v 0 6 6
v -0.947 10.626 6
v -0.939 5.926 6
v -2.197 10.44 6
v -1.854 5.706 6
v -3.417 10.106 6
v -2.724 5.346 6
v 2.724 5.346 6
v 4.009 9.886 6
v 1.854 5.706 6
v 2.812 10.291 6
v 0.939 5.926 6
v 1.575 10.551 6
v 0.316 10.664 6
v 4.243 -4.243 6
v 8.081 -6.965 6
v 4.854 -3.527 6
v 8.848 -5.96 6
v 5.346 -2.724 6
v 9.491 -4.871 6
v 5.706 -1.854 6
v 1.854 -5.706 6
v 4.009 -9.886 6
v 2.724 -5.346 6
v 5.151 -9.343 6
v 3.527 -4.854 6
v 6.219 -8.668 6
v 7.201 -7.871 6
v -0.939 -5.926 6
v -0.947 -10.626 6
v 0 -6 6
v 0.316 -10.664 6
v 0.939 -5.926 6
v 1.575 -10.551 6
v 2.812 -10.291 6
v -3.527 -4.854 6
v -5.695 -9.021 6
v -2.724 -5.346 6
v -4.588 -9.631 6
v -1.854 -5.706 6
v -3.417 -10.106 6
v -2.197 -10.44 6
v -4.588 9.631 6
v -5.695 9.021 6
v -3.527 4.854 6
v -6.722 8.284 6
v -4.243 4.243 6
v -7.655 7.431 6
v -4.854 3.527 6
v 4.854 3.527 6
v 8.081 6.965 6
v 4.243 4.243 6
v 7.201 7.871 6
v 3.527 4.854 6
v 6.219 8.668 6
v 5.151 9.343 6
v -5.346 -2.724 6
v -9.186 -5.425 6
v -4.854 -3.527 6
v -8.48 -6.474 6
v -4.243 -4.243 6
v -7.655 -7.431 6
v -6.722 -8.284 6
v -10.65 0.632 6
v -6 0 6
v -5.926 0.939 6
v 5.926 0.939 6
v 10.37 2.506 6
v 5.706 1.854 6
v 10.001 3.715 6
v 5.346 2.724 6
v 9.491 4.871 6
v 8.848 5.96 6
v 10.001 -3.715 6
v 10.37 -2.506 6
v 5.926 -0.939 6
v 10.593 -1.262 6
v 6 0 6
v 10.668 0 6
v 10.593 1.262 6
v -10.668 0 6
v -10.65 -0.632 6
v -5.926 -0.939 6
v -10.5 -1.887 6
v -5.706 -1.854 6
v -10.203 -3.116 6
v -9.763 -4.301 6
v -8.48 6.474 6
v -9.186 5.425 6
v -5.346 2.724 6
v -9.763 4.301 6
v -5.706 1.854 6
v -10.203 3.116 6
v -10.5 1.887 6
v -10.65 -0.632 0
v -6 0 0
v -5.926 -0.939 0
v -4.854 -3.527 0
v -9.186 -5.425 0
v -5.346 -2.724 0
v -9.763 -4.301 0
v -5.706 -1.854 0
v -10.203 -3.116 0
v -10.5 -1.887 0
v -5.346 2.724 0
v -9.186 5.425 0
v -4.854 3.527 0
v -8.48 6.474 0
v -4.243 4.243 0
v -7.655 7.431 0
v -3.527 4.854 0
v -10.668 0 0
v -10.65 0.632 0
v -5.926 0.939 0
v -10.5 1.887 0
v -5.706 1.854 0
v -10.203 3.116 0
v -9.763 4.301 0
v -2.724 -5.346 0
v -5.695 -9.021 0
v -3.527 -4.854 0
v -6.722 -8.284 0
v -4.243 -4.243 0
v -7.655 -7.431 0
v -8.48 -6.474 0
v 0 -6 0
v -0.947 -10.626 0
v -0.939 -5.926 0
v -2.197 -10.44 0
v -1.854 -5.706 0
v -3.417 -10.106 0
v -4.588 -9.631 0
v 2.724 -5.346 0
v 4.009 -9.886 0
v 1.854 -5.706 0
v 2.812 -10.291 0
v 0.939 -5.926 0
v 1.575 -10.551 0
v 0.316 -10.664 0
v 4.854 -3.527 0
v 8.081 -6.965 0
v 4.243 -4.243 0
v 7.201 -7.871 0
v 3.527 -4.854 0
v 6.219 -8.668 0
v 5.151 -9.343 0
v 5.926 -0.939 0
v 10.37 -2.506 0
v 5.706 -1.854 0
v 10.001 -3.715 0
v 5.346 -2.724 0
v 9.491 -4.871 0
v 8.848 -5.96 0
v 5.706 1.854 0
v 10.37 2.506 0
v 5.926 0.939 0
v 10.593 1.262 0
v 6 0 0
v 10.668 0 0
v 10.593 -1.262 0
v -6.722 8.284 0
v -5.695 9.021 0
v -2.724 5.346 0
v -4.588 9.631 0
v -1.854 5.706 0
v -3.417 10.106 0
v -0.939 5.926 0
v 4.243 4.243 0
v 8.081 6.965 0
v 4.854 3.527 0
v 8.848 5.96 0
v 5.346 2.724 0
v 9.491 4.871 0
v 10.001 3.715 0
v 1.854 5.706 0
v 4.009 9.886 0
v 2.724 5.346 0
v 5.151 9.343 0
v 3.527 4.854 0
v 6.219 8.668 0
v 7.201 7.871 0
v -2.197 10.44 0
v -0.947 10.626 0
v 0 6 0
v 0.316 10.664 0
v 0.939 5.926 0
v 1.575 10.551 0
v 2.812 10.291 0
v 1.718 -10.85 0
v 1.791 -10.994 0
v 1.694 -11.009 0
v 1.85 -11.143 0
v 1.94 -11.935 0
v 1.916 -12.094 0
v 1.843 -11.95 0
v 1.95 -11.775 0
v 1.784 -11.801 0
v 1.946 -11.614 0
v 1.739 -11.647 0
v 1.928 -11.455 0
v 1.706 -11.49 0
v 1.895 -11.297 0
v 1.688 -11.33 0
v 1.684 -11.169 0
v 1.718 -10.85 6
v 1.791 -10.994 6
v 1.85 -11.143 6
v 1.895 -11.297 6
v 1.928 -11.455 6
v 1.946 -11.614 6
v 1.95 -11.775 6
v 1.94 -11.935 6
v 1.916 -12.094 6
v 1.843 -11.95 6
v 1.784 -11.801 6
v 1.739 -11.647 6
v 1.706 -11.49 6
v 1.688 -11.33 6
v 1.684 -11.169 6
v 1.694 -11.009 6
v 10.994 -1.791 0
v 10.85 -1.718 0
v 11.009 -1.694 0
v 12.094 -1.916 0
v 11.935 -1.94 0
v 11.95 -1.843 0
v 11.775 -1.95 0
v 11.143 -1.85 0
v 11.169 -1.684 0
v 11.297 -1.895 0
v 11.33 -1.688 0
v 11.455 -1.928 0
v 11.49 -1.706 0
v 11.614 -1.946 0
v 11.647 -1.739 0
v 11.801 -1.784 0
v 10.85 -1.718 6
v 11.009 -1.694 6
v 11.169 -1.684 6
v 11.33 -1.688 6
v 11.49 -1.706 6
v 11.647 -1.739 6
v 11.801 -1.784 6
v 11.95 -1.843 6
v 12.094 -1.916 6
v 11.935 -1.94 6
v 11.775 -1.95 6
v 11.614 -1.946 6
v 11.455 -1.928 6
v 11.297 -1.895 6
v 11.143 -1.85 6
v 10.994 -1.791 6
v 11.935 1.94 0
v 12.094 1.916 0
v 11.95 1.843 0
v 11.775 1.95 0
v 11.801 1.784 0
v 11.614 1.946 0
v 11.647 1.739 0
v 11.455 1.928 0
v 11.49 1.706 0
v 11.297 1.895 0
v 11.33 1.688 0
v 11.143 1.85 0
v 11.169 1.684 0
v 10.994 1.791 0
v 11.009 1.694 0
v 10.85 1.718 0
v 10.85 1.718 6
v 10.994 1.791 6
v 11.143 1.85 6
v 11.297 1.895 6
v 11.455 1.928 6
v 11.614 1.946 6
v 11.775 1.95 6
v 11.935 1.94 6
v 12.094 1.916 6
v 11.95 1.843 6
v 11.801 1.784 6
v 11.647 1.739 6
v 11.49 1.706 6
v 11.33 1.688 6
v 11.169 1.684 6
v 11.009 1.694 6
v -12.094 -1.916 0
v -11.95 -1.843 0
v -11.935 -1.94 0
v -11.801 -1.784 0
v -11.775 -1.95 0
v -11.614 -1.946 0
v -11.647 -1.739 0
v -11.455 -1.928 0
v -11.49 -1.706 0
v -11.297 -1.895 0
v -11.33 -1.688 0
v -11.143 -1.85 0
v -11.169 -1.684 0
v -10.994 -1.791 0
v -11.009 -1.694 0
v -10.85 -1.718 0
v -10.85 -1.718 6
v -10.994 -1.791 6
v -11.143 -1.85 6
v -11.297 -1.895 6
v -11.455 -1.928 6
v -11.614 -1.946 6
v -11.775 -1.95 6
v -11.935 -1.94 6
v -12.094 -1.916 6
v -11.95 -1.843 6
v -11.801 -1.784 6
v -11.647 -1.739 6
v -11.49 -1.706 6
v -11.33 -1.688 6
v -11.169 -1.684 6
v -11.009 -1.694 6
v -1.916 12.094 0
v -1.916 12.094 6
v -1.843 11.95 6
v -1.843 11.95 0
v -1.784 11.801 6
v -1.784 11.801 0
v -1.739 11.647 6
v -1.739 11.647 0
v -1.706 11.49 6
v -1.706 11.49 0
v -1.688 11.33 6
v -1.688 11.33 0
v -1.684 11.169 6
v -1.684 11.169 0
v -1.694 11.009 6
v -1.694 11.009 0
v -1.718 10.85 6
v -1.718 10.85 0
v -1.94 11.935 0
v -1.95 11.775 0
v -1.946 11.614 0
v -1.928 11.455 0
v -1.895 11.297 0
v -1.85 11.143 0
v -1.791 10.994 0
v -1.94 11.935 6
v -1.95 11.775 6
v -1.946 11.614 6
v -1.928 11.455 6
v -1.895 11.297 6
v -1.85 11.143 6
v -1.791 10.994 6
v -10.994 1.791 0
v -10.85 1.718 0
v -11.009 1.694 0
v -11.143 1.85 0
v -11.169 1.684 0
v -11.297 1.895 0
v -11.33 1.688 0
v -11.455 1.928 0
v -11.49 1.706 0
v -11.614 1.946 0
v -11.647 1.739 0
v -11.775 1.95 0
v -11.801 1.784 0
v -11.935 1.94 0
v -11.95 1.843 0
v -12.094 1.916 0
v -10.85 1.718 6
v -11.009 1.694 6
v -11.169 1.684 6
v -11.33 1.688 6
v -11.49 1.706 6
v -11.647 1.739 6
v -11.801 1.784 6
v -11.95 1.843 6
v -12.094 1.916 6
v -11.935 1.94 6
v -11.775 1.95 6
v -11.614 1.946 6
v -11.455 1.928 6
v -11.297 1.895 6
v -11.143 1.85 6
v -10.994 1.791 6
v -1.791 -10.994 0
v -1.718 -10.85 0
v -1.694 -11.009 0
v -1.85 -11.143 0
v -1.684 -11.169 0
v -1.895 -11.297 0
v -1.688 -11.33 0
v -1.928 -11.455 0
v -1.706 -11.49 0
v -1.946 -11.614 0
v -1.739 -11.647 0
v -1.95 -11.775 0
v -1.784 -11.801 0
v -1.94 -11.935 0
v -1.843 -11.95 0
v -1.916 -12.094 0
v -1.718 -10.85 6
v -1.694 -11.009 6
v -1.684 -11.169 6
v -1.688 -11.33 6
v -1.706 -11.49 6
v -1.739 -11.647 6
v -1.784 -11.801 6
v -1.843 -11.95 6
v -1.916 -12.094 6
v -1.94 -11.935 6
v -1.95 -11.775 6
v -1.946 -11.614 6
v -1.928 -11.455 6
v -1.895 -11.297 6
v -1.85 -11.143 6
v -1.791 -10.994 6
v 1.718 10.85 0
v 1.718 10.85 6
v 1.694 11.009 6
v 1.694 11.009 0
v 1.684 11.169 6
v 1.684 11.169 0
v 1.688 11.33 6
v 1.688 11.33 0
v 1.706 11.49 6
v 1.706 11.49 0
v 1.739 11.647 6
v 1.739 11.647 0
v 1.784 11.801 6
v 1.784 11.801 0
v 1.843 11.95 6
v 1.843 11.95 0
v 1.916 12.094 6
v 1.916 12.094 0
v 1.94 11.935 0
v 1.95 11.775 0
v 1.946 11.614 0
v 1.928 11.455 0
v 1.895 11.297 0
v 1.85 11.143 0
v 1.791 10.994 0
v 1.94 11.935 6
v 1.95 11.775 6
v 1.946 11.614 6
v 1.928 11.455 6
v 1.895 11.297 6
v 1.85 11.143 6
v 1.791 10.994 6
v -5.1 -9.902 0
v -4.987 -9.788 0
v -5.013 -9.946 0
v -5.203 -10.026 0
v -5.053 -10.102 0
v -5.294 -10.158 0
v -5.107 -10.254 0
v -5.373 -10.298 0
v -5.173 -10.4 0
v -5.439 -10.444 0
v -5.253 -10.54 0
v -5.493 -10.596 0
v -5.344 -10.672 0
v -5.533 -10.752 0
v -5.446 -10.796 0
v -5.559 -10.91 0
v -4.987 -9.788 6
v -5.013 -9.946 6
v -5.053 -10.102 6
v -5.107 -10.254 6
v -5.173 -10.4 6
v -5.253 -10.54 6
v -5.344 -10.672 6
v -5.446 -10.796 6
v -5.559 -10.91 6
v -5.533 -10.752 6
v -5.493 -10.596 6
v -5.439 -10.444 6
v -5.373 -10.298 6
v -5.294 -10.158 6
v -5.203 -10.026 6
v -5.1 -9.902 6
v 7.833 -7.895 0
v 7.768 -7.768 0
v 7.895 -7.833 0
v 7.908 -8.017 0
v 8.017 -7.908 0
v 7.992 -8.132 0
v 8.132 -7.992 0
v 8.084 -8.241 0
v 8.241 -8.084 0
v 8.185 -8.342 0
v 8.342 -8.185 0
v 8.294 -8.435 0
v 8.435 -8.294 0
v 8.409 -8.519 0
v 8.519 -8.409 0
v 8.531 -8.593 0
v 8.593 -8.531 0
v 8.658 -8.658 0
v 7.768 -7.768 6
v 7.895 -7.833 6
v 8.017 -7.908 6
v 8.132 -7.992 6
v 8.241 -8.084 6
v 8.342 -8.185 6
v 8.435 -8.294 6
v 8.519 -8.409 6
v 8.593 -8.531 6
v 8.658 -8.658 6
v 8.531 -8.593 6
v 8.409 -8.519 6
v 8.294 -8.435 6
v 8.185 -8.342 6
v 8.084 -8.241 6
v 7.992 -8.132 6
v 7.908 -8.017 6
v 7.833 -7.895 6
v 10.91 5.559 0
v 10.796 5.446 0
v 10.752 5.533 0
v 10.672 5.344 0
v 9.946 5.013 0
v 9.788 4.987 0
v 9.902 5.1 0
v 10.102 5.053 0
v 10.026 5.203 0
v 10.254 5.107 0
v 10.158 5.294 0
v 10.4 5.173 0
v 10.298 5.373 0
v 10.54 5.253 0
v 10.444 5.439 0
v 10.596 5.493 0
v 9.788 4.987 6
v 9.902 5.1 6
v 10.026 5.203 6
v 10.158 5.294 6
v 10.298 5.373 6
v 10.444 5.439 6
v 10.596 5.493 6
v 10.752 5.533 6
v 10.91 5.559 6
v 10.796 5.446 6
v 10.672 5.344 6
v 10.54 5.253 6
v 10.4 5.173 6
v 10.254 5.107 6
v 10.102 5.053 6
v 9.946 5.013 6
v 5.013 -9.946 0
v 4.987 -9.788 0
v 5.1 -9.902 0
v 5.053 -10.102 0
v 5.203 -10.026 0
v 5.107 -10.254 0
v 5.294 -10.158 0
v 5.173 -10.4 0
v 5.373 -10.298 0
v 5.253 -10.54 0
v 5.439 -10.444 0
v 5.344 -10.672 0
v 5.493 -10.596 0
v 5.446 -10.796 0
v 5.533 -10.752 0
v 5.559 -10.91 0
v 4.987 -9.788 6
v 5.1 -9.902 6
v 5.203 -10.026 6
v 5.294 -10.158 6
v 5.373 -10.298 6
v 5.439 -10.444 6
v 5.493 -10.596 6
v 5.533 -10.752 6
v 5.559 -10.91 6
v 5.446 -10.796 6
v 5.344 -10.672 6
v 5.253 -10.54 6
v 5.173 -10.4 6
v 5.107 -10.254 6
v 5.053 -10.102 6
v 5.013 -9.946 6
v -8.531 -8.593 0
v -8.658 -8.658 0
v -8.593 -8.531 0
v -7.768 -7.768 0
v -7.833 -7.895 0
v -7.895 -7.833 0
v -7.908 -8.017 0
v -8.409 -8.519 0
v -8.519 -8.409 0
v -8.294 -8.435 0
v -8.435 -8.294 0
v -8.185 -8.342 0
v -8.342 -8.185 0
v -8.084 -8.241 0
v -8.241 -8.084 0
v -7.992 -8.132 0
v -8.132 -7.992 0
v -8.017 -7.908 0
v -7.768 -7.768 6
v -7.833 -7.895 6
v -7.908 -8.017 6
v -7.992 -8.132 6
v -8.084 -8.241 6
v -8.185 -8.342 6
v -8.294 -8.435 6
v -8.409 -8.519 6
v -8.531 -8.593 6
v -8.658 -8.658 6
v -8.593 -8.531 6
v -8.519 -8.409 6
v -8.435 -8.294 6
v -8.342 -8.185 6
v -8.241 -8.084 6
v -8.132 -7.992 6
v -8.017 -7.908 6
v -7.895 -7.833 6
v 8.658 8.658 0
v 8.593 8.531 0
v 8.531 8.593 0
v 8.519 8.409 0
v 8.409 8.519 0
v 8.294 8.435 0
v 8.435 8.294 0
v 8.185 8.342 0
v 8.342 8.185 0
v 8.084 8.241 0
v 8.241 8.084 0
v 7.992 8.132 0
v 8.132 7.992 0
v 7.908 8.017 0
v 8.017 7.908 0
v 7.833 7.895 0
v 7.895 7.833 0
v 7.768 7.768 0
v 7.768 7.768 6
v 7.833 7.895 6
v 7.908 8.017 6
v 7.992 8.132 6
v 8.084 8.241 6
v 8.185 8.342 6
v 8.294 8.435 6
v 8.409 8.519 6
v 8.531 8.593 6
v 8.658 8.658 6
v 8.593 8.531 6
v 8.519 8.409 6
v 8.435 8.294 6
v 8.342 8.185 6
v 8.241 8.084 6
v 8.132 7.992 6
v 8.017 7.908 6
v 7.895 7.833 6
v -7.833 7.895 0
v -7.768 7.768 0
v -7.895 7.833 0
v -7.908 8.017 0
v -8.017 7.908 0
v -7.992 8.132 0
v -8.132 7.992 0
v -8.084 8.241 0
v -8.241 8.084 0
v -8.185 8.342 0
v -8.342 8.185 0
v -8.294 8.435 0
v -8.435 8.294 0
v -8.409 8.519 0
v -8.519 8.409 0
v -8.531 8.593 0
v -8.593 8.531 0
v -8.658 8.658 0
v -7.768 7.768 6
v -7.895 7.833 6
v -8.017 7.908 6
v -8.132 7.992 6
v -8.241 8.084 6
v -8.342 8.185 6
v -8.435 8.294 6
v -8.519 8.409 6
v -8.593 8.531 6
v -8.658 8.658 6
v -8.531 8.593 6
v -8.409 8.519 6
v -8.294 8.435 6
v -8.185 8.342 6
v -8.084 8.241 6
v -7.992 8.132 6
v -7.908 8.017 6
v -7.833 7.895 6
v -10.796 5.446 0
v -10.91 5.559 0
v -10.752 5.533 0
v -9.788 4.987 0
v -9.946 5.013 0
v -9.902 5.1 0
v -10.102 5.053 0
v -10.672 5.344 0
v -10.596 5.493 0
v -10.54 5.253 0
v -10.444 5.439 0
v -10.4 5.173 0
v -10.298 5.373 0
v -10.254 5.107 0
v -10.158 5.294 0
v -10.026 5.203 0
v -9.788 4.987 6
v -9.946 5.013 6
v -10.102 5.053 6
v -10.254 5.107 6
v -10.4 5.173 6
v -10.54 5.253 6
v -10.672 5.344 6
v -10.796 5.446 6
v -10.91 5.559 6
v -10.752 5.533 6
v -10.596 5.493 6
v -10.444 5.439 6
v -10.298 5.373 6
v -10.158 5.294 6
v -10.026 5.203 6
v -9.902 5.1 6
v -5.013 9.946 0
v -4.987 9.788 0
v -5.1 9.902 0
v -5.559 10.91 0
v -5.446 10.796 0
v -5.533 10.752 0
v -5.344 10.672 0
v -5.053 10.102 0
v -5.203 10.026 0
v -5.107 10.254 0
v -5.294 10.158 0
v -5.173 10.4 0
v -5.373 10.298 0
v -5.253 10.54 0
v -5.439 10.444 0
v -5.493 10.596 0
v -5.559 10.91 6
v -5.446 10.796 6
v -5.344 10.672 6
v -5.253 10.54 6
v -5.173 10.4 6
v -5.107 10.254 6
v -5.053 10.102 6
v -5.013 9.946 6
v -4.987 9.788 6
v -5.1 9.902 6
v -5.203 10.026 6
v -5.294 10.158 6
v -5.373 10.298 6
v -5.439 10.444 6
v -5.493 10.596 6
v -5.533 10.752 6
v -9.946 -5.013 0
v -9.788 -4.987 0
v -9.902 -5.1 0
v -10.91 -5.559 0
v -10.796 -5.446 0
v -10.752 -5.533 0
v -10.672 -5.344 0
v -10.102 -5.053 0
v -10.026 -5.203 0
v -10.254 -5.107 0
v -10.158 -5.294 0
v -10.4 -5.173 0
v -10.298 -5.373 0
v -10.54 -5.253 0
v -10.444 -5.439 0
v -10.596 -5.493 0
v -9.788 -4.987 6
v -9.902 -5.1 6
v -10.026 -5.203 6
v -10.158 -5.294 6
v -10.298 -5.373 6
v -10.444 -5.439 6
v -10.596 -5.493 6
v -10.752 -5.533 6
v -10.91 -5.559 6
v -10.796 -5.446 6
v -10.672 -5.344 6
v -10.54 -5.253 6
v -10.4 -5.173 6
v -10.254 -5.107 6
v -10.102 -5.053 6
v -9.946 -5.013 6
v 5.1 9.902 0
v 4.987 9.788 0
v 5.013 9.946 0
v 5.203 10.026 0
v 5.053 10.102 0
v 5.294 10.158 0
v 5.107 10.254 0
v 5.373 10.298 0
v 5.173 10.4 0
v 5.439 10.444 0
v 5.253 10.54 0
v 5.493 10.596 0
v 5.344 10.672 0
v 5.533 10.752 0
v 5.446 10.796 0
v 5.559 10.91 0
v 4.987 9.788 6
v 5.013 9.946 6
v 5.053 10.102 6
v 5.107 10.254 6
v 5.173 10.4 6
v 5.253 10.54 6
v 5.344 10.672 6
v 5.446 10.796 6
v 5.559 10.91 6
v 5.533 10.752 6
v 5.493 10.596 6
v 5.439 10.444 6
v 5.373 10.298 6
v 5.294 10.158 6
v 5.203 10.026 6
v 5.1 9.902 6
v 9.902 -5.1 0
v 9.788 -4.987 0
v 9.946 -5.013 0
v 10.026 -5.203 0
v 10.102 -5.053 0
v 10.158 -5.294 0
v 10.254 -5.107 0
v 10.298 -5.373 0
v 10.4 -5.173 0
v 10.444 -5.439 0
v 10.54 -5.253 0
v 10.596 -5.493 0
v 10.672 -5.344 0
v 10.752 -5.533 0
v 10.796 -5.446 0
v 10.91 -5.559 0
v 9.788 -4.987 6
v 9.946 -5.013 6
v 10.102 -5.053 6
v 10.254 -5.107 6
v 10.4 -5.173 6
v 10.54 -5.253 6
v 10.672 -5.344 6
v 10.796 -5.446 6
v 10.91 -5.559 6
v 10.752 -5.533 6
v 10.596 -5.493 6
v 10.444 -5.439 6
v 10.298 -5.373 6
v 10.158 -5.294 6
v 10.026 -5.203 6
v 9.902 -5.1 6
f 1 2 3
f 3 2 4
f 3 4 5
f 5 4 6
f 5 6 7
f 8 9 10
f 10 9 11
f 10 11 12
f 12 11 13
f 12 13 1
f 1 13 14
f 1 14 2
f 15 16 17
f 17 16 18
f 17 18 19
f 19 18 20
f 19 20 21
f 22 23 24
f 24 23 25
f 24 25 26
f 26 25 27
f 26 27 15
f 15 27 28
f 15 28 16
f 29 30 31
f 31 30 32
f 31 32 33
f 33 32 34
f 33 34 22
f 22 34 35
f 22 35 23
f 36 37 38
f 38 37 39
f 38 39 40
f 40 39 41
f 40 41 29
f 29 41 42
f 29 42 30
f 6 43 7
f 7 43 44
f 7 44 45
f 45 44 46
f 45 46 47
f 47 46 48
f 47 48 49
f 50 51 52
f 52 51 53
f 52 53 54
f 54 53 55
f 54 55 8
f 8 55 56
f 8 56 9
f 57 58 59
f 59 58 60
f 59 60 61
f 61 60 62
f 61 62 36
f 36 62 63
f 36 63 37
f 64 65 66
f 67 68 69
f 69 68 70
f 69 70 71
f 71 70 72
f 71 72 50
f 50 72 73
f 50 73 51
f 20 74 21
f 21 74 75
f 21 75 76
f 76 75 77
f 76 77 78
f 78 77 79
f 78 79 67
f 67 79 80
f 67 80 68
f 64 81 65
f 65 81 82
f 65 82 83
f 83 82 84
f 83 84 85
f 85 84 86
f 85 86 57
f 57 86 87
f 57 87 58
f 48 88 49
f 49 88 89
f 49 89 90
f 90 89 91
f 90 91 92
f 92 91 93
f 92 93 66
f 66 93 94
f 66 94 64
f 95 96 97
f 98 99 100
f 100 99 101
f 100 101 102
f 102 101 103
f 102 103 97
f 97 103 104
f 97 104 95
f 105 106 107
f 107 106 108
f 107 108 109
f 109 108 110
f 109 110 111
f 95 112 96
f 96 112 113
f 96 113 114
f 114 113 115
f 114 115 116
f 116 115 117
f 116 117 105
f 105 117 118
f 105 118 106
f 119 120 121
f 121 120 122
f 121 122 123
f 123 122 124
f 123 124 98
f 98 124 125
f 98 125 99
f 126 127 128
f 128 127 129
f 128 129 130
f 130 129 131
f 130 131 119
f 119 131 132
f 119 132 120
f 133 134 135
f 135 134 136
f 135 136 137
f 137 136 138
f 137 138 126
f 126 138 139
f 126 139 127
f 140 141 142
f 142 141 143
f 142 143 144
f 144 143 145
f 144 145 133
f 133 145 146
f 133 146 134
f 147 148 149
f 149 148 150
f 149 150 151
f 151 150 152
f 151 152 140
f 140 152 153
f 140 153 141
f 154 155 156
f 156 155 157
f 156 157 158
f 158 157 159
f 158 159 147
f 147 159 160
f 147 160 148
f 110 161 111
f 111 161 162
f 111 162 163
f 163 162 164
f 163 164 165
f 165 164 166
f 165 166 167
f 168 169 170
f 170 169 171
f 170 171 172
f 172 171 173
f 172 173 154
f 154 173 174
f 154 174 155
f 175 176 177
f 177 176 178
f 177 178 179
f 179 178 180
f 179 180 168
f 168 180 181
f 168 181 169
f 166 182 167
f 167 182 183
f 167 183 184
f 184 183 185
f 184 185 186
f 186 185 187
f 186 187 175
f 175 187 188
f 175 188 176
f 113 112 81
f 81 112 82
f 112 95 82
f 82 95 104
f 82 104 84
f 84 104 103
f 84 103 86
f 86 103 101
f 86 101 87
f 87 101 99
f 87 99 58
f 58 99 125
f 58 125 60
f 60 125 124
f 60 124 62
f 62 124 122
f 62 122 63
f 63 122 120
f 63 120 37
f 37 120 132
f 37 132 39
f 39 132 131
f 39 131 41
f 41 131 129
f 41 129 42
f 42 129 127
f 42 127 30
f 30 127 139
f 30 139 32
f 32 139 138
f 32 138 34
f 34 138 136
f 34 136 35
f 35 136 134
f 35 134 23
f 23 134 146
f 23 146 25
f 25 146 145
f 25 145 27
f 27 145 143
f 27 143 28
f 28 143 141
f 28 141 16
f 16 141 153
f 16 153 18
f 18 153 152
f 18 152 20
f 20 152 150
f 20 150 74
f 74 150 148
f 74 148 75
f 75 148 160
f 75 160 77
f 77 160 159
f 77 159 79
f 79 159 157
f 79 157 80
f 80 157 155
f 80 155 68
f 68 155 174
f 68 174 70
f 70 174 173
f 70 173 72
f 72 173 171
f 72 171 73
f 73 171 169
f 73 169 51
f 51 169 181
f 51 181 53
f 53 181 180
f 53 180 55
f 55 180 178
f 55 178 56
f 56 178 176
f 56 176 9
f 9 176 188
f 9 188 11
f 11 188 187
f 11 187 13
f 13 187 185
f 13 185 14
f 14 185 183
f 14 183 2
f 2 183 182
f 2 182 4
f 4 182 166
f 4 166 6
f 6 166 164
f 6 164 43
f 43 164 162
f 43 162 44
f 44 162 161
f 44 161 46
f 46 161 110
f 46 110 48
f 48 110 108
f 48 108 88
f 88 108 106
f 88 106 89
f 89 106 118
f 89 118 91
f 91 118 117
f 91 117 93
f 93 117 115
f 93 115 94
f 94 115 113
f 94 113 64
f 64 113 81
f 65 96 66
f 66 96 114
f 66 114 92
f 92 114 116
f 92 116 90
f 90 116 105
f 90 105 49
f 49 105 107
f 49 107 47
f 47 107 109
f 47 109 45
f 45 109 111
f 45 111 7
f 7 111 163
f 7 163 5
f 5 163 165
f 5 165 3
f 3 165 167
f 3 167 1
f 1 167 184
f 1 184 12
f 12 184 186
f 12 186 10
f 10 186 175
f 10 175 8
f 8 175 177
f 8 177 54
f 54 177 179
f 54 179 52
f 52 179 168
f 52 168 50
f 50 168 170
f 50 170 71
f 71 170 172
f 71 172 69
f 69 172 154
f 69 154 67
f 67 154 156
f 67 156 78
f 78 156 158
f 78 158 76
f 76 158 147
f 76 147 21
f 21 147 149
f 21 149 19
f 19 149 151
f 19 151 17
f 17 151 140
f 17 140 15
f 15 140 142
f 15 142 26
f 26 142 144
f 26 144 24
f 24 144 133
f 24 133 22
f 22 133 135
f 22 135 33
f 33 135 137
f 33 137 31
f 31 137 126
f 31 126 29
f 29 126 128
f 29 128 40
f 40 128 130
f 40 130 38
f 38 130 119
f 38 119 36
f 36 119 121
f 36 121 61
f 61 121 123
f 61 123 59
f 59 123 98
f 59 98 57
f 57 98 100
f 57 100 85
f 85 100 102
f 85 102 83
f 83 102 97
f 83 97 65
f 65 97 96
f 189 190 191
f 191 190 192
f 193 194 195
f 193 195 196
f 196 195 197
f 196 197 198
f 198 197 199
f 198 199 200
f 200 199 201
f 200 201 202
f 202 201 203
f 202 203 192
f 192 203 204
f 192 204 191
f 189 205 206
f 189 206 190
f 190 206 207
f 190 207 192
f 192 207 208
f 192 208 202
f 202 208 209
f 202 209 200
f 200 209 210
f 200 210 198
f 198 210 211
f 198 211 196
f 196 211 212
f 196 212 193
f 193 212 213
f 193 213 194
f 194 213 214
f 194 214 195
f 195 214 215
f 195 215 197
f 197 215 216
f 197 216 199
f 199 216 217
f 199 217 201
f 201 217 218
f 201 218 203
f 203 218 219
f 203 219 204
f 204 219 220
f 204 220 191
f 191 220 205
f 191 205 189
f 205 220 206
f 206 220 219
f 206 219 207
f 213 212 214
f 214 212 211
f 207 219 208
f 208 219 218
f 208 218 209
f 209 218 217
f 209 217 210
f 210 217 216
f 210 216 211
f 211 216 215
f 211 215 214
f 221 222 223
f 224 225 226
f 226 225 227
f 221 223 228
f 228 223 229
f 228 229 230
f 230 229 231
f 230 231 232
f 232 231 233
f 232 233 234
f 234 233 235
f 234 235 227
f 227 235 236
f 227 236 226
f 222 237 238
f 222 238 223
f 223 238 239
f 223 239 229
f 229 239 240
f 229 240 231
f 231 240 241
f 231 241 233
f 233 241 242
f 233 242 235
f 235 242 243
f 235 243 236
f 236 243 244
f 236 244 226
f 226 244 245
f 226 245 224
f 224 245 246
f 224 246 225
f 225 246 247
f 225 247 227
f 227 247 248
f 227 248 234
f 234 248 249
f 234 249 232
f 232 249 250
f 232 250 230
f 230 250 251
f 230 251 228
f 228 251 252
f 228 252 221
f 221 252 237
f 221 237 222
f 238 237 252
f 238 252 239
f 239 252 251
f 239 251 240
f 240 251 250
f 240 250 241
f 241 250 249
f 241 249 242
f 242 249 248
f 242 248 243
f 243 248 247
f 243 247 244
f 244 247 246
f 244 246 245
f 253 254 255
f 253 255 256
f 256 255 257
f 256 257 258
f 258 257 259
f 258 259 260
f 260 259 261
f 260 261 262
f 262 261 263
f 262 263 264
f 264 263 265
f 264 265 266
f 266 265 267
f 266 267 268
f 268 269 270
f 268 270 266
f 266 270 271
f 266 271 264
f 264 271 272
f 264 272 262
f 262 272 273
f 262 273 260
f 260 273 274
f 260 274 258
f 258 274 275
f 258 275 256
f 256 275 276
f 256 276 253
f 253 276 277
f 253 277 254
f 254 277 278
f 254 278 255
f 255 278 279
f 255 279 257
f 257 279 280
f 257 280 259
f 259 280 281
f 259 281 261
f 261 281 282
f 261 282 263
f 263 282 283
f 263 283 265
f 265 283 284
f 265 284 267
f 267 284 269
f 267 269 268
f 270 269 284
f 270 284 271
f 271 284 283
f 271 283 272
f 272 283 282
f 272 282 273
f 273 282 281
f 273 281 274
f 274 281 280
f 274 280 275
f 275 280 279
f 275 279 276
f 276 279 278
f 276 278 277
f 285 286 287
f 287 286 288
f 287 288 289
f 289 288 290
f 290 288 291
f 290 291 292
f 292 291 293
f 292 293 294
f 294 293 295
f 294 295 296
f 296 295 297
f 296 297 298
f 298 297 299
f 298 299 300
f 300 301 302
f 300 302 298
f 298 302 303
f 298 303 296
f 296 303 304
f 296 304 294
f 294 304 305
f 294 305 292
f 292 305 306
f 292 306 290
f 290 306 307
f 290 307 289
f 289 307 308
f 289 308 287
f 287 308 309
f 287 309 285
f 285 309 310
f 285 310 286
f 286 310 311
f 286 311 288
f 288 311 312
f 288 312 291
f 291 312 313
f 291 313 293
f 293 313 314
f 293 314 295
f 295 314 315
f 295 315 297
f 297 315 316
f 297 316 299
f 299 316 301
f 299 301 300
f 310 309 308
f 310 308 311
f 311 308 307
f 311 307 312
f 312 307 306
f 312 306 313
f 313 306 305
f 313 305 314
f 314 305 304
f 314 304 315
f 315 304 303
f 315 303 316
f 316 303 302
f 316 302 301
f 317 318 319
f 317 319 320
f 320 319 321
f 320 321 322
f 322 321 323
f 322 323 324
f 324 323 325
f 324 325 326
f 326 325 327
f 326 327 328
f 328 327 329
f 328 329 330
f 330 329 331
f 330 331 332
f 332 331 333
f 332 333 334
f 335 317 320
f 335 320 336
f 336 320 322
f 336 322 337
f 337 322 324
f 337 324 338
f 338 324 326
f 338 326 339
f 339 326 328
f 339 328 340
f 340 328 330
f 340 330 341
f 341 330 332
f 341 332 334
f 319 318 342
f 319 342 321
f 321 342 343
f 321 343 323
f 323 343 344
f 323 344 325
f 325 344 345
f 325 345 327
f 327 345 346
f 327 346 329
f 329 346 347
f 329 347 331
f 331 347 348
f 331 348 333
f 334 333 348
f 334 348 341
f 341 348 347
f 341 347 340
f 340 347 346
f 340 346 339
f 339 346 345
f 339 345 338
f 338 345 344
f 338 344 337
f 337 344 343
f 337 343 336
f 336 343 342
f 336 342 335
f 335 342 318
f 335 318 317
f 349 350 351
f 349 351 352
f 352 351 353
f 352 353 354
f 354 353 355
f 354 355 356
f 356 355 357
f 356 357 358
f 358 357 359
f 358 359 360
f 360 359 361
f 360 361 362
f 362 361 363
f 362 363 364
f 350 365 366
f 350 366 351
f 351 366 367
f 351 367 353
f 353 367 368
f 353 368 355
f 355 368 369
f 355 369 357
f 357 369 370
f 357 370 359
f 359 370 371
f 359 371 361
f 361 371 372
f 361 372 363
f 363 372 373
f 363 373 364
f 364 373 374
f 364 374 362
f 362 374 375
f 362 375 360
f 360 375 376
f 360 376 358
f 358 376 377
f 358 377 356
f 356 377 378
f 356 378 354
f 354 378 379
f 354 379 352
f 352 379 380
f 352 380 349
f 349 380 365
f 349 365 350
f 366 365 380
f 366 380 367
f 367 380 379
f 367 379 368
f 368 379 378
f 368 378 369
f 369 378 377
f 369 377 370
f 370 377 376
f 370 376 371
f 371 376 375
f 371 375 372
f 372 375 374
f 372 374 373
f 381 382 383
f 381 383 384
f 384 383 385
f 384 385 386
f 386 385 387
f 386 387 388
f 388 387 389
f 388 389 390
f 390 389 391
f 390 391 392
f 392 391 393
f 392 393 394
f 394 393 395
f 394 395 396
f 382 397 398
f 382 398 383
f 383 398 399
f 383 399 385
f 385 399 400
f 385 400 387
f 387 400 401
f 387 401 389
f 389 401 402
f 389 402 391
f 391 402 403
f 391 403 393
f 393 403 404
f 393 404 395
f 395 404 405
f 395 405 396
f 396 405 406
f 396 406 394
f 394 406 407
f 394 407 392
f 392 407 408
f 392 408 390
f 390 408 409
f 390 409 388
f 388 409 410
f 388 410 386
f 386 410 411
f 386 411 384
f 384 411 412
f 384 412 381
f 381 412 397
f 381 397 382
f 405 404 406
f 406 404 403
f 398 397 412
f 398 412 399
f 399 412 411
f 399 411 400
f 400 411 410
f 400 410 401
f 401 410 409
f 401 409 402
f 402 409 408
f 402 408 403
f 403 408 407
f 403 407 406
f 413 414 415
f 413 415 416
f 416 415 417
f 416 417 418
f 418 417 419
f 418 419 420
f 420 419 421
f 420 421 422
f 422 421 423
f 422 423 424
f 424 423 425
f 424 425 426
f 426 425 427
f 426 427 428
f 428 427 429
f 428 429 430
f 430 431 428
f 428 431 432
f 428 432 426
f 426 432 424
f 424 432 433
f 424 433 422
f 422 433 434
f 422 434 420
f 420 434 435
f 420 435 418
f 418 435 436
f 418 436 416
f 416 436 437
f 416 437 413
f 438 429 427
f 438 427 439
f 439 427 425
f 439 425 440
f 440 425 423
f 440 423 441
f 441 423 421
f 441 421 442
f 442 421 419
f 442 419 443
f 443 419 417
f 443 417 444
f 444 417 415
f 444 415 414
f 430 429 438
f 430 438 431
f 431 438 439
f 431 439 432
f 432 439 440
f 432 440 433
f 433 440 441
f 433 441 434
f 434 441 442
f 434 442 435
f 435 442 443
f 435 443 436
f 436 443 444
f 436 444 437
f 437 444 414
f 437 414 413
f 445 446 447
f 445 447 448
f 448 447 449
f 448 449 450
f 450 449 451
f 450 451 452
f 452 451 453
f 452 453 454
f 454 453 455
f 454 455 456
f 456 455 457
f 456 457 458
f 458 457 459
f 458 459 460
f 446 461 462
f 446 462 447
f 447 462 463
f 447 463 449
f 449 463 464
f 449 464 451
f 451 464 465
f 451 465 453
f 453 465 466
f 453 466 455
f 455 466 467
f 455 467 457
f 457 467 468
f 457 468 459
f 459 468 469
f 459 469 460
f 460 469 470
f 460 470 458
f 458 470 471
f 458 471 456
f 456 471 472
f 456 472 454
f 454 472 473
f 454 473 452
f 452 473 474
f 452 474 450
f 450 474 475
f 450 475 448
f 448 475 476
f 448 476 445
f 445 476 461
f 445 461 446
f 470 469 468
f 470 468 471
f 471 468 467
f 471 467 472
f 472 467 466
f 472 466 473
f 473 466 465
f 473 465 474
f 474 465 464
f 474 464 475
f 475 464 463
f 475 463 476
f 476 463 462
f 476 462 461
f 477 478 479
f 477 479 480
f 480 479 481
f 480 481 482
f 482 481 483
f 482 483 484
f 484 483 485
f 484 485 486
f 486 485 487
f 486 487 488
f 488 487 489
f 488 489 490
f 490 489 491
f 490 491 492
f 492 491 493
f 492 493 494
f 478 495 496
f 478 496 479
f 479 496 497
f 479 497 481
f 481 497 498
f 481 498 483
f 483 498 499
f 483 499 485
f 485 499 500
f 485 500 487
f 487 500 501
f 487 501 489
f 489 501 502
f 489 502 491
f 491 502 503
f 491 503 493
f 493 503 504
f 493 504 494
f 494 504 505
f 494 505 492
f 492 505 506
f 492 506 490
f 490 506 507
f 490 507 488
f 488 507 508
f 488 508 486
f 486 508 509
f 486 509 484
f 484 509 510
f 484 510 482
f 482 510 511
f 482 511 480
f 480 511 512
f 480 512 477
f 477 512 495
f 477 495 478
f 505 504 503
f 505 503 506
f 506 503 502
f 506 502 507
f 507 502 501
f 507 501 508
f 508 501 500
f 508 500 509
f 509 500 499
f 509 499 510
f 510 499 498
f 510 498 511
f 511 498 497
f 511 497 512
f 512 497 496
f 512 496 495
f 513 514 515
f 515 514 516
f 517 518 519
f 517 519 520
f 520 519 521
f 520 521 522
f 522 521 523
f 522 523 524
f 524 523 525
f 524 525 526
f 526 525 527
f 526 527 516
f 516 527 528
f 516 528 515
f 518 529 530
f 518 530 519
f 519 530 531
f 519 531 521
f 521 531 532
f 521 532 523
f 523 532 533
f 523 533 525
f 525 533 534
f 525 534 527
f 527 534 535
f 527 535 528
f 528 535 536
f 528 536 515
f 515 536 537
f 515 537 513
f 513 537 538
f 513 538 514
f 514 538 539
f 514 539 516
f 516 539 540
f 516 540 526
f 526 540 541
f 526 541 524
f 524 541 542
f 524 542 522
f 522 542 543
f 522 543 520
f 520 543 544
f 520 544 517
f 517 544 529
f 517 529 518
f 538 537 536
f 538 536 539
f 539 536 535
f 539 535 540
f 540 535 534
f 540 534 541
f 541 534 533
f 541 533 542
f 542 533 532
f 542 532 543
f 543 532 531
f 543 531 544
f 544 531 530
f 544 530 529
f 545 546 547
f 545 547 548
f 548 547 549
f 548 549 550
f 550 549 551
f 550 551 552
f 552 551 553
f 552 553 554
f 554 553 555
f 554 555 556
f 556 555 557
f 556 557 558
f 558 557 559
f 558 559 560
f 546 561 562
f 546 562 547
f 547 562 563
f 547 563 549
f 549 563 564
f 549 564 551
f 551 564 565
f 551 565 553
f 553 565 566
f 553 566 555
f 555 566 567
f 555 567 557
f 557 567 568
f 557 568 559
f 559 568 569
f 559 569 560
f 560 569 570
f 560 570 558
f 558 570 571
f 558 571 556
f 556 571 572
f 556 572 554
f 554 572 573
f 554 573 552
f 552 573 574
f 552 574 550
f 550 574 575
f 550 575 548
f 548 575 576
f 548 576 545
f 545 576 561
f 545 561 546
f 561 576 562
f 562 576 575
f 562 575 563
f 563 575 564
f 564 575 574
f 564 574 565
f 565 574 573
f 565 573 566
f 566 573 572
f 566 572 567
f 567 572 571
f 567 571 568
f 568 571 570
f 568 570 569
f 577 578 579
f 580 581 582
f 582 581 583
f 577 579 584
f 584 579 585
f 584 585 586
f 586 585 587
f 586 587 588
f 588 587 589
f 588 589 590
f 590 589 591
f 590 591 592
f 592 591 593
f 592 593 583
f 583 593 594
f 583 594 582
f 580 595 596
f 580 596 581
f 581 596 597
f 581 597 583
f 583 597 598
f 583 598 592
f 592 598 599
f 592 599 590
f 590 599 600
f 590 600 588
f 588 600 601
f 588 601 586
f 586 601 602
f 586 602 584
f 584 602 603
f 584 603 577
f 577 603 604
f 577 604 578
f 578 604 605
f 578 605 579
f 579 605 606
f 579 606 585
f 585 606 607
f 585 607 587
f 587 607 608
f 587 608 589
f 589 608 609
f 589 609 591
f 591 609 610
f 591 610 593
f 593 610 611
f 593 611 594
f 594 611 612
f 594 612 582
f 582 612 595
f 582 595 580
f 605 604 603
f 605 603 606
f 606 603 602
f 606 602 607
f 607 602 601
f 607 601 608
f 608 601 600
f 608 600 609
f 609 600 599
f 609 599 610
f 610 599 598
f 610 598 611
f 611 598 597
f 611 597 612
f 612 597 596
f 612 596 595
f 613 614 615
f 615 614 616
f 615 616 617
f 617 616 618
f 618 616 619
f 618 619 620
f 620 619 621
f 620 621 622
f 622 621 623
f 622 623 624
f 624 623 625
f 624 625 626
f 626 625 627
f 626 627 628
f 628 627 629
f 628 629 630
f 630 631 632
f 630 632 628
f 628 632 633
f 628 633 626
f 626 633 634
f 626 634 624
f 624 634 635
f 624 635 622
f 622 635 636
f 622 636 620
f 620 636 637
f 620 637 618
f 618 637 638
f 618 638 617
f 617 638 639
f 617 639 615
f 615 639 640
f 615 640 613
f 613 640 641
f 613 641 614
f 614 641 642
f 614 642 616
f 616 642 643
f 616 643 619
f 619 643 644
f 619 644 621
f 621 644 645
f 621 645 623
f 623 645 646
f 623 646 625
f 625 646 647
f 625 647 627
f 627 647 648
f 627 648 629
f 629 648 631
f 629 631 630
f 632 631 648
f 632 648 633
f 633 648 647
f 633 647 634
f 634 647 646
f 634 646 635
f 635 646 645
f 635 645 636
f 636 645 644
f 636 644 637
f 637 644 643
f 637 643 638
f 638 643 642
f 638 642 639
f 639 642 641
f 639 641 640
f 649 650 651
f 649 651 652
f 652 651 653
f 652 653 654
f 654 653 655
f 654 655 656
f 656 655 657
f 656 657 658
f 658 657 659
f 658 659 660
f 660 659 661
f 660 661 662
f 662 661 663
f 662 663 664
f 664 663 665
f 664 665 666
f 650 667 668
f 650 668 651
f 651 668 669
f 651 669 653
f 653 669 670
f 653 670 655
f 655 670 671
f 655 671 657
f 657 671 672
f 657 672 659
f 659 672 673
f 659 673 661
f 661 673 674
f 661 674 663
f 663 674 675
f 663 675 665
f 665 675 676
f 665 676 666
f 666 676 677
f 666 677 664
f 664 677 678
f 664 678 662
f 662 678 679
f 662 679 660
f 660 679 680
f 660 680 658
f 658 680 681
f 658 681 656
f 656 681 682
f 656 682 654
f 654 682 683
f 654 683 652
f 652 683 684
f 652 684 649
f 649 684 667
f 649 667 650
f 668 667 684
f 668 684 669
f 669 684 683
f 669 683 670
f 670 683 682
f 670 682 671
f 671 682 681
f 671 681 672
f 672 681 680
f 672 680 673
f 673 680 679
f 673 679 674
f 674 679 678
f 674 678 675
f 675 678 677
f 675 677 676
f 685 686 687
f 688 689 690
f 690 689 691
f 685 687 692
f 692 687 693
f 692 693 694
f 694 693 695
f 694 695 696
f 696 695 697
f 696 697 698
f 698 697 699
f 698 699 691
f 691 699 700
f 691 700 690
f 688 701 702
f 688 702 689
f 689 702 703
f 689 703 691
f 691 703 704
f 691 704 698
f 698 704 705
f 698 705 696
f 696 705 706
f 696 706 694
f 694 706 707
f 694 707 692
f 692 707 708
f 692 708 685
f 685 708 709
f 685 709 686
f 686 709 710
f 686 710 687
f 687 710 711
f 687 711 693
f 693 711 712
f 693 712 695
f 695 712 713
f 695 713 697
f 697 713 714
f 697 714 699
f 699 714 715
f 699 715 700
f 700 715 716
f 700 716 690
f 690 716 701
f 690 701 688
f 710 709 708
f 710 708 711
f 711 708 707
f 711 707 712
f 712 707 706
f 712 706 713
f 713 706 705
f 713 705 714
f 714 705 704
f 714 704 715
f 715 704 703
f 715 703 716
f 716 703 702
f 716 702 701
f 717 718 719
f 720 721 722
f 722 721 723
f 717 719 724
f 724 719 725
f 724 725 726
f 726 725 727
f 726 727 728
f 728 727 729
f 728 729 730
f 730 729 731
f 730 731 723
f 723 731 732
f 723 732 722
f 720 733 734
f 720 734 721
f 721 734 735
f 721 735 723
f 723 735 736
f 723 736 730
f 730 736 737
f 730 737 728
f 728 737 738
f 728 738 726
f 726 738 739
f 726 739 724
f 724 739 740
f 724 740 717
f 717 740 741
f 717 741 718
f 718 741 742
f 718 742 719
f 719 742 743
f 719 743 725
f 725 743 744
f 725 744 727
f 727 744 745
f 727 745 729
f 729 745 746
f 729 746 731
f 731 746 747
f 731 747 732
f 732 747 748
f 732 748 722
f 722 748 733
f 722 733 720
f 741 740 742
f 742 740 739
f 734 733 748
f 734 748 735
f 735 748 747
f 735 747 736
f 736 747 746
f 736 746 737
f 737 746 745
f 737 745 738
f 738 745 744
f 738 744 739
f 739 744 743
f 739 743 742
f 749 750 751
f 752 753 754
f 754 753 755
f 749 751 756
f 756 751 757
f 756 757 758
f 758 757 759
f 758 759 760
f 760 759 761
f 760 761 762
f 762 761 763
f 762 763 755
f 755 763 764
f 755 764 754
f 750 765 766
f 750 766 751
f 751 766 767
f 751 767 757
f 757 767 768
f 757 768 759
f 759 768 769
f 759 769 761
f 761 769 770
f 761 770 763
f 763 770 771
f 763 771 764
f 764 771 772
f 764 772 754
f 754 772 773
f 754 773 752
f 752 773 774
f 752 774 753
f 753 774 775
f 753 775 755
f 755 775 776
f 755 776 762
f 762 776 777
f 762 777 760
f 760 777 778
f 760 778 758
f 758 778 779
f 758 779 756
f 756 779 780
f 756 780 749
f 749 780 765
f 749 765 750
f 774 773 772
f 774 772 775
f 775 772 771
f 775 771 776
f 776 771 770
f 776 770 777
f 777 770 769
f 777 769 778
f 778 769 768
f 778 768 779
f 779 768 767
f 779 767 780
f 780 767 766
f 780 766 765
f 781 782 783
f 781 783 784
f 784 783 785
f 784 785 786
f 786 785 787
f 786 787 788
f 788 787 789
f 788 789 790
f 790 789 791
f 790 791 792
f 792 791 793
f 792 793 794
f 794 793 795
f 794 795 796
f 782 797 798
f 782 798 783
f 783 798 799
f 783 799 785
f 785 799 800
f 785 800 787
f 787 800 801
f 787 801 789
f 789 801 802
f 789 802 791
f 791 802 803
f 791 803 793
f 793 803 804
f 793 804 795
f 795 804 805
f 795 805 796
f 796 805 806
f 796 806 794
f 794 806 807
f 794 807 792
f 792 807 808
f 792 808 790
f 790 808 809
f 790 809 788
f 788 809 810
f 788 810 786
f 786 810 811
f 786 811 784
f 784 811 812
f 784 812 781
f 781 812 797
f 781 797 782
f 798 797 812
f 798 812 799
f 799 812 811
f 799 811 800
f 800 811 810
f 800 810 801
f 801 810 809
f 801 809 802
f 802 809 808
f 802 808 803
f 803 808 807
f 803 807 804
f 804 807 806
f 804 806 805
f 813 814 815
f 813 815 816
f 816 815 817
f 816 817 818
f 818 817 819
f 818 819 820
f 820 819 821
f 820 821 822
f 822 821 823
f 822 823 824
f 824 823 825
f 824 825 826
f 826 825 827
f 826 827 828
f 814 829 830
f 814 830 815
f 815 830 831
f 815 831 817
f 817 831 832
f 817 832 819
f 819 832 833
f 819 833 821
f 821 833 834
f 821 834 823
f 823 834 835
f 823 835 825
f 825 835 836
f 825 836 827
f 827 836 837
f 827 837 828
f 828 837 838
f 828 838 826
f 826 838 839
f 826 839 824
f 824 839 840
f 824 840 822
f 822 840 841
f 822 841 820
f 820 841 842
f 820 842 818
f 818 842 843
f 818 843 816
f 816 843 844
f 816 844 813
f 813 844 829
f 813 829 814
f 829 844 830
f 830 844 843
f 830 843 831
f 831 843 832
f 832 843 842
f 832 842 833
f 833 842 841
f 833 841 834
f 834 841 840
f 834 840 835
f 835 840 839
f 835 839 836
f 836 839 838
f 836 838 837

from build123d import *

# Parameters (mm, degrees)
SKETCH1_R           = 13.2
SKETCH1_R_2         = 6
BOSS_EXTRUDE1_DEPTH = 6
CUT_EXTRUDE1_DEPTH  = 7
CIRPATTERN2_COUNT   = 20


with BuildPart() as part:
    # Sketch1 → Boss-Extrude1 (new body)
    with BuildSketch(Plane.XY):
        Circle(SKETCH1_R)
        Circle(SKETCH1_R_2, mode=Mode.SUBTRACT)
    extrude(amount=BOSS_EXTRUDE1_DEPTH)

    # Sketch2 → Cut-Extrude1 (cut, through all)
    with BuildSketch(Plane.XY.offset(6)):
        with BuildLine():
            ThreePointArc((-2.819851171, 12.895287487), (0, 13.2), (2.819851171, 12.895287487))
            ThreePointArc((2.819851171, 12.895287487), (1.826256171, 11.910750525), (1.819851171, 10.512))
            ThreePointArc((1.819851171, 10.512), (0, 10.668364555), (-1.819851171, 10.512))
            ThreePointArc((-1.819851171, 10.512), (-1.826256171, 11.910750525), (-2.819851171, 12.895287487))
        make_face()
    cut_extrude1 = extrude(amount=-CUT_EXTRUDE1_DEPTH, mode=Mode.SUBTRACT)

    # CirPattern2: Cut-Extrude1 ×20 about axis
    cirpattern2_axis = Axis((0, 0, 0), (0, 0, 1))
    for i in range(1, CIRPATTERN2_COUNT):
        add(cut_extrude1.rotate(cirpattern2_axis, i * 360 / CIRPATTERN2_COUNT), mode=Mode.SUBTRACT)


solid = part.part
